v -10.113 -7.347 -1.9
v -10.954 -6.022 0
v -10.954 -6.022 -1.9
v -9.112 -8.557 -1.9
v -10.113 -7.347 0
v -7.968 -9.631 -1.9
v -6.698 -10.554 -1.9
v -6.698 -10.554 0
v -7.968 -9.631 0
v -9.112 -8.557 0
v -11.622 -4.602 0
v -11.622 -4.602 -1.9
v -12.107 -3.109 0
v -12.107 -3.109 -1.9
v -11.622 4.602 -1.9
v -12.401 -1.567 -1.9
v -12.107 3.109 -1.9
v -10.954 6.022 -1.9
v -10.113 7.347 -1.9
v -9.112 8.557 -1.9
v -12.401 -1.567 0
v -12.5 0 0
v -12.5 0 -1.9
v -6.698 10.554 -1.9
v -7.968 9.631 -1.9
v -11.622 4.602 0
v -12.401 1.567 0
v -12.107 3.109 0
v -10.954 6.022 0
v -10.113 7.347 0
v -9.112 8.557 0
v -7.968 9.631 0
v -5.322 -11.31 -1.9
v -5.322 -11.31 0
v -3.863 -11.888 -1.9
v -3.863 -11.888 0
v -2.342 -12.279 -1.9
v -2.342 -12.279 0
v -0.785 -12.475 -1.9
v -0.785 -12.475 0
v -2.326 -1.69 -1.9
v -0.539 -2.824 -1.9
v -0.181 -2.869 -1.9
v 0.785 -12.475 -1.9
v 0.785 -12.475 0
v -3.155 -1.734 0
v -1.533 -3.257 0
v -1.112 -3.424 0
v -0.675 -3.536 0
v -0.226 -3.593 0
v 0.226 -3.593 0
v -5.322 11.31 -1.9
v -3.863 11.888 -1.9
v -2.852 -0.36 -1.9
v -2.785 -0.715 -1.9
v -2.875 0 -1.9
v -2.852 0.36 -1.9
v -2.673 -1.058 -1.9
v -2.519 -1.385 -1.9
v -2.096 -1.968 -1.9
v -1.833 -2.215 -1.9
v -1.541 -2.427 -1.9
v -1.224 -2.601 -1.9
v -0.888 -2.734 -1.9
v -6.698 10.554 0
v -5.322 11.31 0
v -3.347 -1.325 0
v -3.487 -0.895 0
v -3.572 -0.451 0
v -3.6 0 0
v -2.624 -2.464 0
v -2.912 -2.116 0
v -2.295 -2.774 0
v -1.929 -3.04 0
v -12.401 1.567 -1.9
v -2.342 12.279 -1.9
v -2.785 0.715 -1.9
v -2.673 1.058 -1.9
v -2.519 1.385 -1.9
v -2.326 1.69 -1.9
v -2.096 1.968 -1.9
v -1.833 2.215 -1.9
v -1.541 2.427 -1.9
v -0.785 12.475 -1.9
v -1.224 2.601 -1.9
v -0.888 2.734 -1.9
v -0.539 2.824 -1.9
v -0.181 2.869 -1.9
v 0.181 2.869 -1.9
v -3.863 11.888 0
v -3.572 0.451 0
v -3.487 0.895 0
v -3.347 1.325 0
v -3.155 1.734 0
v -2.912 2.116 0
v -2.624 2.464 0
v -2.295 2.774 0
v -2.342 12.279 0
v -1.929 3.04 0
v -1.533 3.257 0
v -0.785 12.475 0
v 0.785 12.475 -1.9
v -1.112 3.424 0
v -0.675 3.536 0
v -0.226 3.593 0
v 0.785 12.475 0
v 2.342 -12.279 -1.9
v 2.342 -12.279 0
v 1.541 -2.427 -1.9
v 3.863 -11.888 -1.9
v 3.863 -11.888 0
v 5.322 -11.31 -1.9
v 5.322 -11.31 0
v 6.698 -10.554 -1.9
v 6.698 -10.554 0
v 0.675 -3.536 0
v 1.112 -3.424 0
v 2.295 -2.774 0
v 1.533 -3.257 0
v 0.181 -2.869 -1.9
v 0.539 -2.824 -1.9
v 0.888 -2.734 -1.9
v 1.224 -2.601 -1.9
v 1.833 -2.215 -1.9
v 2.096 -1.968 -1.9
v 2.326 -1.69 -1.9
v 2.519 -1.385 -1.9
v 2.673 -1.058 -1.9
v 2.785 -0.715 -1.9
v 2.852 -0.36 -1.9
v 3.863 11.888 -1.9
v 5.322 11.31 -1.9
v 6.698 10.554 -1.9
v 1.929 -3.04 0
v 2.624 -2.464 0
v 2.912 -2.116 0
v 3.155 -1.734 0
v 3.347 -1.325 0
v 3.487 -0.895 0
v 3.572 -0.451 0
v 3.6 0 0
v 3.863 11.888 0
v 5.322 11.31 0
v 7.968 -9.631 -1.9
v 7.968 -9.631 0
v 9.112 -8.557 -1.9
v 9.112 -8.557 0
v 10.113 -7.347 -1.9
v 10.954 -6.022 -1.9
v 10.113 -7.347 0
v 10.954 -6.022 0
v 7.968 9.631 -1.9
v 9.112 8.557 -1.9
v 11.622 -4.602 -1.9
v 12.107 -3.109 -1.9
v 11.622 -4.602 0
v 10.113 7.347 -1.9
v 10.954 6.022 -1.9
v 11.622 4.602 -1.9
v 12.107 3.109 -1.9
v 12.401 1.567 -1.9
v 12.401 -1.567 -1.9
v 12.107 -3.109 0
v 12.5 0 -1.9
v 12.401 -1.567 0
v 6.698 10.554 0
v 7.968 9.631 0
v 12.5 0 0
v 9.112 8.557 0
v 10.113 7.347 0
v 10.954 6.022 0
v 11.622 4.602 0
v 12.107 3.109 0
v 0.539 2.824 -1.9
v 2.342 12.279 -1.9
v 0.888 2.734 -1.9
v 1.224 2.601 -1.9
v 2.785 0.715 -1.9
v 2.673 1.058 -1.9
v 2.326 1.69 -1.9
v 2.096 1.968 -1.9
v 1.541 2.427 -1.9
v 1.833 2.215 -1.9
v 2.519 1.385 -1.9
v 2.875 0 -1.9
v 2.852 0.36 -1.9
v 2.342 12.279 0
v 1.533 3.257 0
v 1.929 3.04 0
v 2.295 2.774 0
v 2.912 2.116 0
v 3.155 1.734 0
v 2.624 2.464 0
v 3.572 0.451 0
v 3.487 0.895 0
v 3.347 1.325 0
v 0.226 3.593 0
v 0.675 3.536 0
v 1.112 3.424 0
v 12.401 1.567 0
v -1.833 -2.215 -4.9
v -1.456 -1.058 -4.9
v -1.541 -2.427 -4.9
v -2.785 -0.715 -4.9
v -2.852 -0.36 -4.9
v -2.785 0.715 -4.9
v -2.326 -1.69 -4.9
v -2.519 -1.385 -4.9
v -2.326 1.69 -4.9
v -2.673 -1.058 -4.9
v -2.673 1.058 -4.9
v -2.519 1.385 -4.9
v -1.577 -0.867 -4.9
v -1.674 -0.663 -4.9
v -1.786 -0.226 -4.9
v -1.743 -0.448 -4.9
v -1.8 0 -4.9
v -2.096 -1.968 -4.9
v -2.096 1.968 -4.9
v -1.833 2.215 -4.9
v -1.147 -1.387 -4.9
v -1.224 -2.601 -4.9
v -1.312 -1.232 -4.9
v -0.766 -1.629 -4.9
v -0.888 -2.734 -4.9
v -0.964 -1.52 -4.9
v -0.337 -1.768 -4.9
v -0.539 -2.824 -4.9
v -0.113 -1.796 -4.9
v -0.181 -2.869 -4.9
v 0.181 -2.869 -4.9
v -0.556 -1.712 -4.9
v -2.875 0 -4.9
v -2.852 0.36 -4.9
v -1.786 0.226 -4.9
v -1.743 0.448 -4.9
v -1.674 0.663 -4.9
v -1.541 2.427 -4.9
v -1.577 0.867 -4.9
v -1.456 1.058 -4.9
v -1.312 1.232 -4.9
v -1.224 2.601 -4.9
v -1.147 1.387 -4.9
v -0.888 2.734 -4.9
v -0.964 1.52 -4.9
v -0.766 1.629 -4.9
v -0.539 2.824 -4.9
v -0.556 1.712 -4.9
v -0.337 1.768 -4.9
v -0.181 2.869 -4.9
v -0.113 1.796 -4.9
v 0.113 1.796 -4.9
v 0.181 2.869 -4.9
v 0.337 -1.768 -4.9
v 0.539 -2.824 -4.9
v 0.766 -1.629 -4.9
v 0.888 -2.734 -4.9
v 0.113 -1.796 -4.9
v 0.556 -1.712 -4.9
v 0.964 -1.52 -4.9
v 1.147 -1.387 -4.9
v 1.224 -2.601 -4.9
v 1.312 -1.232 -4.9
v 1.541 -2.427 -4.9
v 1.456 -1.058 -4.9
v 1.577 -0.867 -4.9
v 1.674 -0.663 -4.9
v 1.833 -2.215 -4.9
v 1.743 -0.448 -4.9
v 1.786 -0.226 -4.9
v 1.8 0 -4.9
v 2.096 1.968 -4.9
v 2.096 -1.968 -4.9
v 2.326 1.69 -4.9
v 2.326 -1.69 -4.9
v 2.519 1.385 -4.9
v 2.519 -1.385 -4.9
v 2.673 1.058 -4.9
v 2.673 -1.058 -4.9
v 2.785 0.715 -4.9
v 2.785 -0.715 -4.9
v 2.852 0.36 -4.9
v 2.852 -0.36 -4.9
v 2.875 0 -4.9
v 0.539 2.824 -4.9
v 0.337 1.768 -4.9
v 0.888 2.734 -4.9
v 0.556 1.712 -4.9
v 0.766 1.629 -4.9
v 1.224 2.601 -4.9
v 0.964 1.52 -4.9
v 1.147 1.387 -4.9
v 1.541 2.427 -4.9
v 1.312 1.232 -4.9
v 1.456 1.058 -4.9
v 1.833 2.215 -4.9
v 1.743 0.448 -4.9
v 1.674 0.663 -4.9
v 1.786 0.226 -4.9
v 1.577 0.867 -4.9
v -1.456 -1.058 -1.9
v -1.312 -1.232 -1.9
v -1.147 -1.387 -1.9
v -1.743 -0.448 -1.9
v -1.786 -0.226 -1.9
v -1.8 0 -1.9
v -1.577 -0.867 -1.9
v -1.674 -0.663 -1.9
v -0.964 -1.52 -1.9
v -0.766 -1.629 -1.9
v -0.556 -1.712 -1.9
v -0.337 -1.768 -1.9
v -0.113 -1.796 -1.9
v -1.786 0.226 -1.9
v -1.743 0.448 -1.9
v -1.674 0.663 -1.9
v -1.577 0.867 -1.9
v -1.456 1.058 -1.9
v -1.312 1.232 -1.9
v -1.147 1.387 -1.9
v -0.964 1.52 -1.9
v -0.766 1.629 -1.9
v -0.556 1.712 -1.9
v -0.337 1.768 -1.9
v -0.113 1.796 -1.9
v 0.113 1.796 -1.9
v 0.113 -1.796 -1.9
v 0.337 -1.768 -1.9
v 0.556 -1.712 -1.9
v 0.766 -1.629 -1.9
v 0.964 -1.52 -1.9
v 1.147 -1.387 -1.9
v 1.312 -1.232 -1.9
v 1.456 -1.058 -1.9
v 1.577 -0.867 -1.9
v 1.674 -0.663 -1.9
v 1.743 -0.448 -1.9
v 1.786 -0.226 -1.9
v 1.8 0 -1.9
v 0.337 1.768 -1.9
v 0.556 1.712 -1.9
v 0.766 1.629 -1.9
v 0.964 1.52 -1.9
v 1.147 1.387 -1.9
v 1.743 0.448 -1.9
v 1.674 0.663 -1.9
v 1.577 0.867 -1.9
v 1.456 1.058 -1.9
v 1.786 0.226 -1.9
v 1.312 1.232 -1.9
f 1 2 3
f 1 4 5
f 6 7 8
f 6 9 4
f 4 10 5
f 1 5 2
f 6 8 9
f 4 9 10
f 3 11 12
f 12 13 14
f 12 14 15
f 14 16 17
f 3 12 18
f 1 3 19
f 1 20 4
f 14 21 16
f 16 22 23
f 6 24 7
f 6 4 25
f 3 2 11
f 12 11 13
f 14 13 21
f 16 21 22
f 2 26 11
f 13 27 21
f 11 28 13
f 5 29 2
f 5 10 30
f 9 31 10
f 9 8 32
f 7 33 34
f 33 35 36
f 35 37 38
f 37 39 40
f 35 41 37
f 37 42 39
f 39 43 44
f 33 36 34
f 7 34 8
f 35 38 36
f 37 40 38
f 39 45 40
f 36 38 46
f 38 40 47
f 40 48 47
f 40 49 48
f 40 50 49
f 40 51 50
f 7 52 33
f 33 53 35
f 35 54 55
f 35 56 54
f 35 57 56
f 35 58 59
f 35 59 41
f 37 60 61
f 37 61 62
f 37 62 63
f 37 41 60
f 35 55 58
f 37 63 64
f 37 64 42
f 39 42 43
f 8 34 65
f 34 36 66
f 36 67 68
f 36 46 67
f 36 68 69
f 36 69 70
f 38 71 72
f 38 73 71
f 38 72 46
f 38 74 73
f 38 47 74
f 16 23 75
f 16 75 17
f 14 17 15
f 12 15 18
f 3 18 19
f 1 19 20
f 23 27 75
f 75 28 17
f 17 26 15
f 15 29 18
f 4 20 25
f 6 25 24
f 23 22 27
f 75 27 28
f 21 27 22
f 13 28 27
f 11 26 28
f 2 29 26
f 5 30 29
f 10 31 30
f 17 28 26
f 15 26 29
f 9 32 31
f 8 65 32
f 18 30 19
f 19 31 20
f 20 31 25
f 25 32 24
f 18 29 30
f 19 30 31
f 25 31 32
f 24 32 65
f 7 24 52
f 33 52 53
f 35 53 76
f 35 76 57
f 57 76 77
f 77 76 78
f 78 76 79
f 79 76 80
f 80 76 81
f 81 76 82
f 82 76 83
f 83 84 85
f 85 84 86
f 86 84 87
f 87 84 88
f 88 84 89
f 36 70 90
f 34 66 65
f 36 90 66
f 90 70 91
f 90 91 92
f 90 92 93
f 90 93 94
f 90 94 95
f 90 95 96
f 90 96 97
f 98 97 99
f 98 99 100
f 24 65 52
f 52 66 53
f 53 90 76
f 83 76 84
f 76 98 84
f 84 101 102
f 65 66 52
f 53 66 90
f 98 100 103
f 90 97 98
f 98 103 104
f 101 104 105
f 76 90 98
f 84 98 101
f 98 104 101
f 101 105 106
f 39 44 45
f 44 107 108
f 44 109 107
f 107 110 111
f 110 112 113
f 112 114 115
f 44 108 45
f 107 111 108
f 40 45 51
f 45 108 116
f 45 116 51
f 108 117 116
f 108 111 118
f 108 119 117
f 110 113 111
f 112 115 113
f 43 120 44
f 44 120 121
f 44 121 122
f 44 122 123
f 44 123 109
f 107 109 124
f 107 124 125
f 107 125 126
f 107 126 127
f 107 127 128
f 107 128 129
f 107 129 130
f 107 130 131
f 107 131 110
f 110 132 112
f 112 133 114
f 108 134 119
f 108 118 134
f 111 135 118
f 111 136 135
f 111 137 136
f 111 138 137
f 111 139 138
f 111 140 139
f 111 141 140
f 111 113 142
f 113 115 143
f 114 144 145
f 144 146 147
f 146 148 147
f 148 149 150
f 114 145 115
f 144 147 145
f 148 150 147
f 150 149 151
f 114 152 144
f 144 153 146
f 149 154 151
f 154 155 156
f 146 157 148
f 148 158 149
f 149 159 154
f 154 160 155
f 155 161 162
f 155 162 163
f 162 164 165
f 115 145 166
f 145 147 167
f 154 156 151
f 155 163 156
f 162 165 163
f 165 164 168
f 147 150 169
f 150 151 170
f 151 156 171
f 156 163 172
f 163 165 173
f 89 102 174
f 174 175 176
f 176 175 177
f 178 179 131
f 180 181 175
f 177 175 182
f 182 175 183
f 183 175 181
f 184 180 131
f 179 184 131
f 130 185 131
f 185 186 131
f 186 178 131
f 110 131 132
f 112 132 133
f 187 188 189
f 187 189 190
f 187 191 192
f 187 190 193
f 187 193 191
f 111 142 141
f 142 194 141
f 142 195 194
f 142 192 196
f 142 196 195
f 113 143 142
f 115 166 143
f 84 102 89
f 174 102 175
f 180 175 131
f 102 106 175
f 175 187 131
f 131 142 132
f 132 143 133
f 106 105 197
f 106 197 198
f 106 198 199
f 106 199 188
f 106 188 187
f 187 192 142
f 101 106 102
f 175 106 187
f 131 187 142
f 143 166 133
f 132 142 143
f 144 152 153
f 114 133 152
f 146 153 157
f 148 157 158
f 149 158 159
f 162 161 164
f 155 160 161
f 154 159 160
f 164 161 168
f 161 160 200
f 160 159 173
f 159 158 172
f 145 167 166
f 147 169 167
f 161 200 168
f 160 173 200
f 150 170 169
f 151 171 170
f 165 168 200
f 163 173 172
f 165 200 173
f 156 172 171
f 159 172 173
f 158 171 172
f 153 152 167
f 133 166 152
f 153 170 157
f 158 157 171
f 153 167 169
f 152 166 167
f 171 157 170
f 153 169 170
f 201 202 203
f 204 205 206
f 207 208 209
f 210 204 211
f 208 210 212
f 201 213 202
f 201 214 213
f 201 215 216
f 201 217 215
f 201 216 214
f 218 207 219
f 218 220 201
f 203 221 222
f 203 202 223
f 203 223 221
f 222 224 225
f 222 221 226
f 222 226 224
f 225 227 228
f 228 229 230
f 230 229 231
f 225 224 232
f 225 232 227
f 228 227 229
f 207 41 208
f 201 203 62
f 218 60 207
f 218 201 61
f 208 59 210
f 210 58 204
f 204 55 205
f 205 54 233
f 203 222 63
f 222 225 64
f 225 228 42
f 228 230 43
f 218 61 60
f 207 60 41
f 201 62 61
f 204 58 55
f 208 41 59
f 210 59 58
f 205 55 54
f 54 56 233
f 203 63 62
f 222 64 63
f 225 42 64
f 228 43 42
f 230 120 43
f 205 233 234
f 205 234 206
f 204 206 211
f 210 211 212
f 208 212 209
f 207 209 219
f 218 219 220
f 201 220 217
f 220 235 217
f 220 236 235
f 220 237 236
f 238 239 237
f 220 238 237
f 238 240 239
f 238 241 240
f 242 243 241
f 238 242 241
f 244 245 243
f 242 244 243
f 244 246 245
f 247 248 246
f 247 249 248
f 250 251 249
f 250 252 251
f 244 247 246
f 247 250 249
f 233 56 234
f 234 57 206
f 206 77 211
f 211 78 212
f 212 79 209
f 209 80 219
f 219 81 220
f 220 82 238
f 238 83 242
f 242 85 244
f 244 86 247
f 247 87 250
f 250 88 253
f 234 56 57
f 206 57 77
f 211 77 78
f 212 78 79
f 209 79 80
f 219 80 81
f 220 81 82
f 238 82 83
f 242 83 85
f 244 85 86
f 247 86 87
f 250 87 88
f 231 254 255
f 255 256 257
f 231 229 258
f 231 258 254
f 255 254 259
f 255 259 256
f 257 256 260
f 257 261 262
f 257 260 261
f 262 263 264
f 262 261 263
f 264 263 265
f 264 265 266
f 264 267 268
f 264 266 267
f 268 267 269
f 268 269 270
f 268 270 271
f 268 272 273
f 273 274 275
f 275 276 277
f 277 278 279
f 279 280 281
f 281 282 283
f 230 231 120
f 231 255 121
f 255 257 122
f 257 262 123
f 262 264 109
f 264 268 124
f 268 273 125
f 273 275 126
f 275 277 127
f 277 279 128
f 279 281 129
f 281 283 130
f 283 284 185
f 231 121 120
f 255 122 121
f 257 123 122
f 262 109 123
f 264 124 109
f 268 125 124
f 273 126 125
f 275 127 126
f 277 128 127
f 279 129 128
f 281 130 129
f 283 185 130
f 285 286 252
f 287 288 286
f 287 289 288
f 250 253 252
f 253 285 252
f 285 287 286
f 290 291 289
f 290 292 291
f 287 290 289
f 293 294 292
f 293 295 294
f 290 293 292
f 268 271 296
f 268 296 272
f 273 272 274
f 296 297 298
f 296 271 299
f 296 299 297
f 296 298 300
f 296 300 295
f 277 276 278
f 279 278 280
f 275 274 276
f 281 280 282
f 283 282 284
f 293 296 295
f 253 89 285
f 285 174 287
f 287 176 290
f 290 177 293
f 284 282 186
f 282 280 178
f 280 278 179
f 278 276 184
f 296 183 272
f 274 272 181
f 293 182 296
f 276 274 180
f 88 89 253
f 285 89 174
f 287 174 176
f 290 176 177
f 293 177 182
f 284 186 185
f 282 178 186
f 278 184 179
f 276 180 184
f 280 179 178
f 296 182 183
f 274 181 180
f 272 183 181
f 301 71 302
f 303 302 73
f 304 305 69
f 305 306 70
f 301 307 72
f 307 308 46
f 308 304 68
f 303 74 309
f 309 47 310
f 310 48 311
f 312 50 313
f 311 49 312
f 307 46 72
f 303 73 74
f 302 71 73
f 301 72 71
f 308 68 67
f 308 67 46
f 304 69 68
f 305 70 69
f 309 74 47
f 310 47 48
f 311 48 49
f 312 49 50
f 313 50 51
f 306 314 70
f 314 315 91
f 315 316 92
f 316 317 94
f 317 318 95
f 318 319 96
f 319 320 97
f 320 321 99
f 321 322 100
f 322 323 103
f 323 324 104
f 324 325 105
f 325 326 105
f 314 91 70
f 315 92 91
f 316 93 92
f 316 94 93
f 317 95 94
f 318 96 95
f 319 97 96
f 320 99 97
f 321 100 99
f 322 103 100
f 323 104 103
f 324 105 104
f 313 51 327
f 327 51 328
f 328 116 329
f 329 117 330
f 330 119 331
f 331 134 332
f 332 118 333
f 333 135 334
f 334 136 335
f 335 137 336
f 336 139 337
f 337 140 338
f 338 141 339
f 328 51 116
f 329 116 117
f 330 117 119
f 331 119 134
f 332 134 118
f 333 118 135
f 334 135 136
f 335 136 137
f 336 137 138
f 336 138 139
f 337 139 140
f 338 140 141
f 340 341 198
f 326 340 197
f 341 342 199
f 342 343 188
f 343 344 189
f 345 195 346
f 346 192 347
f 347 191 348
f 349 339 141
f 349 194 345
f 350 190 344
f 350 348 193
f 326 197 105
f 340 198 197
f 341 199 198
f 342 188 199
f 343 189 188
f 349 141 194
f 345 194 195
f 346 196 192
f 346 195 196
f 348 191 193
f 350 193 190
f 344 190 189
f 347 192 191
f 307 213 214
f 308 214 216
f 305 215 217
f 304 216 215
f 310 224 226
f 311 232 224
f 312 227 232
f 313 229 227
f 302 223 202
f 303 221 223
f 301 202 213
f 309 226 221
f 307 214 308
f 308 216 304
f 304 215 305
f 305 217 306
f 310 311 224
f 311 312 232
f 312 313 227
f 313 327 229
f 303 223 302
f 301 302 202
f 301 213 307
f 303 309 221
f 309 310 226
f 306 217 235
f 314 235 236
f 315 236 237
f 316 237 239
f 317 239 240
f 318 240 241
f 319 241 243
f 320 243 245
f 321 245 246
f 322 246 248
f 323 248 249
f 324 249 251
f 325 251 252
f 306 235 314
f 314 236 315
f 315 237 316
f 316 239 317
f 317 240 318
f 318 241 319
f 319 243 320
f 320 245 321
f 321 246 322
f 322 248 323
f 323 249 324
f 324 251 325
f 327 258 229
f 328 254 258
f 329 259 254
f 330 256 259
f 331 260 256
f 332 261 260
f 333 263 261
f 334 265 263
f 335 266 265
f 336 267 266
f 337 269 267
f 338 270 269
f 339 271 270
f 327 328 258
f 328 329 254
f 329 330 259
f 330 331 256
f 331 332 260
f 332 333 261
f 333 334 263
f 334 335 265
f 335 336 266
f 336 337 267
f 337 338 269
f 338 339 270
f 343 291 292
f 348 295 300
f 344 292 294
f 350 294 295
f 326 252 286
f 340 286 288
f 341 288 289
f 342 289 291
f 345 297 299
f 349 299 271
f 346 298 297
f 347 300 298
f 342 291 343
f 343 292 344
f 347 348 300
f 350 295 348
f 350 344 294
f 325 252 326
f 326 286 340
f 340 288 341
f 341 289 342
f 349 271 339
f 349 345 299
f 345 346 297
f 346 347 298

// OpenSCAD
$fn = 50;

difference() {
	union() {
		translate(v = [0, 0, -1.9]) {
			cylinder(h = 1.9, r = 12.5);
		}
		#translate(v = [0, 0, -4.9]) {
			cylinder(h = 4.9, r = 2.875);
		}
	}
	union() {
		translate(v = [0, 0, 0]) {
			rotate(a = [0, 0, 0]) {
				difference() {
					union() {
						translate(v = [0, 0, -4.9]) {
							cylinder(h = 4.9, r = 1.5);
						}
						translate(v = [0, 0, -1.9]) {
							cylinder(h = 1.9, r1 = 1.8, r2 = 3.6);
						}
						translate(v = [0, 0, -4.9]) {
							cylinder(h = 4.9, r = 1.8);
						}
						translate(v = [0, 0, -4.9]) {
							cylinder(h = 4.9, r = 1.5);
						}
					}
					union();
				}
			}
		}
	}
}
